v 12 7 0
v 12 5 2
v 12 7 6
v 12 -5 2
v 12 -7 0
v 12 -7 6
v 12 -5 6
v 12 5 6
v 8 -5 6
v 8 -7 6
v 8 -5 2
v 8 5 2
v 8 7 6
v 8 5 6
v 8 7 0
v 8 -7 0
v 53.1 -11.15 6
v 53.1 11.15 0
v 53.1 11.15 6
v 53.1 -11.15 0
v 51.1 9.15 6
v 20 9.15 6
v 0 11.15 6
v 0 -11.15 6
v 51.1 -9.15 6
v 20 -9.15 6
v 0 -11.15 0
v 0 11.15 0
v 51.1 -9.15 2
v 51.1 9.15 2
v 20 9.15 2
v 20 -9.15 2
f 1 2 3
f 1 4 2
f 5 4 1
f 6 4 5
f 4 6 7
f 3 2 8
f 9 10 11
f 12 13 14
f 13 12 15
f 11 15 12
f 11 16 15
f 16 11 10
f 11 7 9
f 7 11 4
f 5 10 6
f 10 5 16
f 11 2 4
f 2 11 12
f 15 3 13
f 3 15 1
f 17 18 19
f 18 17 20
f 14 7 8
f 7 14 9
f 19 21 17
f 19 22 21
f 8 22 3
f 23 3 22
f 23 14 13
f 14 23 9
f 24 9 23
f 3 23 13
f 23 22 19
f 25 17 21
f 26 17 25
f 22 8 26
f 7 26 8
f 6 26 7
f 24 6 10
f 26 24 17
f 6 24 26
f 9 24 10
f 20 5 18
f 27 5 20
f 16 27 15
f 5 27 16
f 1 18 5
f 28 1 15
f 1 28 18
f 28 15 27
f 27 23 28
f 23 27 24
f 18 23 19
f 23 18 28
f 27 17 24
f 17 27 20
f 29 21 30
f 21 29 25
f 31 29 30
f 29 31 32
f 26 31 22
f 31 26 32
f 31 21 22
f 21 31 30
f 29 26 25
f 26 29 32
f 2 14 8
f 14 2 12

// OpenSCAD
board_l = 31.1;
board_w = 18.3;
board_h = 4;
margin = 2;
plug_l = 20;
plug_w = 10;
slot_l = 4;
slot_w = 2;

total_w = board_w + 2 * margin;
total_h = margin + board_h;

$e = 0.001;

difference() {
  translate([0, -total_w / 2, 0])
    cube([ board_l + plug_l + margin, total_w, total_h ]);
  translate([ plug_l, - board_w / 2, margin ]) cube([ board_l, board_w, board_h + $e ]);
  translate([plug_l / 2 - slot_l / 2, -plug_w / 2 - slot_w, -$e]) {
    cube([slot_l, slot_w, total_h + 2 * $e]);
    cube([slot_l, slot_w * 2 + plug_w, slot_w + $e]);
  }
  translate([plug_l / 2 - slot_l / 2, plug_w / 2, -$e])
    cube([slot_l, slot_w, total_h + 2 * $e]);
}
